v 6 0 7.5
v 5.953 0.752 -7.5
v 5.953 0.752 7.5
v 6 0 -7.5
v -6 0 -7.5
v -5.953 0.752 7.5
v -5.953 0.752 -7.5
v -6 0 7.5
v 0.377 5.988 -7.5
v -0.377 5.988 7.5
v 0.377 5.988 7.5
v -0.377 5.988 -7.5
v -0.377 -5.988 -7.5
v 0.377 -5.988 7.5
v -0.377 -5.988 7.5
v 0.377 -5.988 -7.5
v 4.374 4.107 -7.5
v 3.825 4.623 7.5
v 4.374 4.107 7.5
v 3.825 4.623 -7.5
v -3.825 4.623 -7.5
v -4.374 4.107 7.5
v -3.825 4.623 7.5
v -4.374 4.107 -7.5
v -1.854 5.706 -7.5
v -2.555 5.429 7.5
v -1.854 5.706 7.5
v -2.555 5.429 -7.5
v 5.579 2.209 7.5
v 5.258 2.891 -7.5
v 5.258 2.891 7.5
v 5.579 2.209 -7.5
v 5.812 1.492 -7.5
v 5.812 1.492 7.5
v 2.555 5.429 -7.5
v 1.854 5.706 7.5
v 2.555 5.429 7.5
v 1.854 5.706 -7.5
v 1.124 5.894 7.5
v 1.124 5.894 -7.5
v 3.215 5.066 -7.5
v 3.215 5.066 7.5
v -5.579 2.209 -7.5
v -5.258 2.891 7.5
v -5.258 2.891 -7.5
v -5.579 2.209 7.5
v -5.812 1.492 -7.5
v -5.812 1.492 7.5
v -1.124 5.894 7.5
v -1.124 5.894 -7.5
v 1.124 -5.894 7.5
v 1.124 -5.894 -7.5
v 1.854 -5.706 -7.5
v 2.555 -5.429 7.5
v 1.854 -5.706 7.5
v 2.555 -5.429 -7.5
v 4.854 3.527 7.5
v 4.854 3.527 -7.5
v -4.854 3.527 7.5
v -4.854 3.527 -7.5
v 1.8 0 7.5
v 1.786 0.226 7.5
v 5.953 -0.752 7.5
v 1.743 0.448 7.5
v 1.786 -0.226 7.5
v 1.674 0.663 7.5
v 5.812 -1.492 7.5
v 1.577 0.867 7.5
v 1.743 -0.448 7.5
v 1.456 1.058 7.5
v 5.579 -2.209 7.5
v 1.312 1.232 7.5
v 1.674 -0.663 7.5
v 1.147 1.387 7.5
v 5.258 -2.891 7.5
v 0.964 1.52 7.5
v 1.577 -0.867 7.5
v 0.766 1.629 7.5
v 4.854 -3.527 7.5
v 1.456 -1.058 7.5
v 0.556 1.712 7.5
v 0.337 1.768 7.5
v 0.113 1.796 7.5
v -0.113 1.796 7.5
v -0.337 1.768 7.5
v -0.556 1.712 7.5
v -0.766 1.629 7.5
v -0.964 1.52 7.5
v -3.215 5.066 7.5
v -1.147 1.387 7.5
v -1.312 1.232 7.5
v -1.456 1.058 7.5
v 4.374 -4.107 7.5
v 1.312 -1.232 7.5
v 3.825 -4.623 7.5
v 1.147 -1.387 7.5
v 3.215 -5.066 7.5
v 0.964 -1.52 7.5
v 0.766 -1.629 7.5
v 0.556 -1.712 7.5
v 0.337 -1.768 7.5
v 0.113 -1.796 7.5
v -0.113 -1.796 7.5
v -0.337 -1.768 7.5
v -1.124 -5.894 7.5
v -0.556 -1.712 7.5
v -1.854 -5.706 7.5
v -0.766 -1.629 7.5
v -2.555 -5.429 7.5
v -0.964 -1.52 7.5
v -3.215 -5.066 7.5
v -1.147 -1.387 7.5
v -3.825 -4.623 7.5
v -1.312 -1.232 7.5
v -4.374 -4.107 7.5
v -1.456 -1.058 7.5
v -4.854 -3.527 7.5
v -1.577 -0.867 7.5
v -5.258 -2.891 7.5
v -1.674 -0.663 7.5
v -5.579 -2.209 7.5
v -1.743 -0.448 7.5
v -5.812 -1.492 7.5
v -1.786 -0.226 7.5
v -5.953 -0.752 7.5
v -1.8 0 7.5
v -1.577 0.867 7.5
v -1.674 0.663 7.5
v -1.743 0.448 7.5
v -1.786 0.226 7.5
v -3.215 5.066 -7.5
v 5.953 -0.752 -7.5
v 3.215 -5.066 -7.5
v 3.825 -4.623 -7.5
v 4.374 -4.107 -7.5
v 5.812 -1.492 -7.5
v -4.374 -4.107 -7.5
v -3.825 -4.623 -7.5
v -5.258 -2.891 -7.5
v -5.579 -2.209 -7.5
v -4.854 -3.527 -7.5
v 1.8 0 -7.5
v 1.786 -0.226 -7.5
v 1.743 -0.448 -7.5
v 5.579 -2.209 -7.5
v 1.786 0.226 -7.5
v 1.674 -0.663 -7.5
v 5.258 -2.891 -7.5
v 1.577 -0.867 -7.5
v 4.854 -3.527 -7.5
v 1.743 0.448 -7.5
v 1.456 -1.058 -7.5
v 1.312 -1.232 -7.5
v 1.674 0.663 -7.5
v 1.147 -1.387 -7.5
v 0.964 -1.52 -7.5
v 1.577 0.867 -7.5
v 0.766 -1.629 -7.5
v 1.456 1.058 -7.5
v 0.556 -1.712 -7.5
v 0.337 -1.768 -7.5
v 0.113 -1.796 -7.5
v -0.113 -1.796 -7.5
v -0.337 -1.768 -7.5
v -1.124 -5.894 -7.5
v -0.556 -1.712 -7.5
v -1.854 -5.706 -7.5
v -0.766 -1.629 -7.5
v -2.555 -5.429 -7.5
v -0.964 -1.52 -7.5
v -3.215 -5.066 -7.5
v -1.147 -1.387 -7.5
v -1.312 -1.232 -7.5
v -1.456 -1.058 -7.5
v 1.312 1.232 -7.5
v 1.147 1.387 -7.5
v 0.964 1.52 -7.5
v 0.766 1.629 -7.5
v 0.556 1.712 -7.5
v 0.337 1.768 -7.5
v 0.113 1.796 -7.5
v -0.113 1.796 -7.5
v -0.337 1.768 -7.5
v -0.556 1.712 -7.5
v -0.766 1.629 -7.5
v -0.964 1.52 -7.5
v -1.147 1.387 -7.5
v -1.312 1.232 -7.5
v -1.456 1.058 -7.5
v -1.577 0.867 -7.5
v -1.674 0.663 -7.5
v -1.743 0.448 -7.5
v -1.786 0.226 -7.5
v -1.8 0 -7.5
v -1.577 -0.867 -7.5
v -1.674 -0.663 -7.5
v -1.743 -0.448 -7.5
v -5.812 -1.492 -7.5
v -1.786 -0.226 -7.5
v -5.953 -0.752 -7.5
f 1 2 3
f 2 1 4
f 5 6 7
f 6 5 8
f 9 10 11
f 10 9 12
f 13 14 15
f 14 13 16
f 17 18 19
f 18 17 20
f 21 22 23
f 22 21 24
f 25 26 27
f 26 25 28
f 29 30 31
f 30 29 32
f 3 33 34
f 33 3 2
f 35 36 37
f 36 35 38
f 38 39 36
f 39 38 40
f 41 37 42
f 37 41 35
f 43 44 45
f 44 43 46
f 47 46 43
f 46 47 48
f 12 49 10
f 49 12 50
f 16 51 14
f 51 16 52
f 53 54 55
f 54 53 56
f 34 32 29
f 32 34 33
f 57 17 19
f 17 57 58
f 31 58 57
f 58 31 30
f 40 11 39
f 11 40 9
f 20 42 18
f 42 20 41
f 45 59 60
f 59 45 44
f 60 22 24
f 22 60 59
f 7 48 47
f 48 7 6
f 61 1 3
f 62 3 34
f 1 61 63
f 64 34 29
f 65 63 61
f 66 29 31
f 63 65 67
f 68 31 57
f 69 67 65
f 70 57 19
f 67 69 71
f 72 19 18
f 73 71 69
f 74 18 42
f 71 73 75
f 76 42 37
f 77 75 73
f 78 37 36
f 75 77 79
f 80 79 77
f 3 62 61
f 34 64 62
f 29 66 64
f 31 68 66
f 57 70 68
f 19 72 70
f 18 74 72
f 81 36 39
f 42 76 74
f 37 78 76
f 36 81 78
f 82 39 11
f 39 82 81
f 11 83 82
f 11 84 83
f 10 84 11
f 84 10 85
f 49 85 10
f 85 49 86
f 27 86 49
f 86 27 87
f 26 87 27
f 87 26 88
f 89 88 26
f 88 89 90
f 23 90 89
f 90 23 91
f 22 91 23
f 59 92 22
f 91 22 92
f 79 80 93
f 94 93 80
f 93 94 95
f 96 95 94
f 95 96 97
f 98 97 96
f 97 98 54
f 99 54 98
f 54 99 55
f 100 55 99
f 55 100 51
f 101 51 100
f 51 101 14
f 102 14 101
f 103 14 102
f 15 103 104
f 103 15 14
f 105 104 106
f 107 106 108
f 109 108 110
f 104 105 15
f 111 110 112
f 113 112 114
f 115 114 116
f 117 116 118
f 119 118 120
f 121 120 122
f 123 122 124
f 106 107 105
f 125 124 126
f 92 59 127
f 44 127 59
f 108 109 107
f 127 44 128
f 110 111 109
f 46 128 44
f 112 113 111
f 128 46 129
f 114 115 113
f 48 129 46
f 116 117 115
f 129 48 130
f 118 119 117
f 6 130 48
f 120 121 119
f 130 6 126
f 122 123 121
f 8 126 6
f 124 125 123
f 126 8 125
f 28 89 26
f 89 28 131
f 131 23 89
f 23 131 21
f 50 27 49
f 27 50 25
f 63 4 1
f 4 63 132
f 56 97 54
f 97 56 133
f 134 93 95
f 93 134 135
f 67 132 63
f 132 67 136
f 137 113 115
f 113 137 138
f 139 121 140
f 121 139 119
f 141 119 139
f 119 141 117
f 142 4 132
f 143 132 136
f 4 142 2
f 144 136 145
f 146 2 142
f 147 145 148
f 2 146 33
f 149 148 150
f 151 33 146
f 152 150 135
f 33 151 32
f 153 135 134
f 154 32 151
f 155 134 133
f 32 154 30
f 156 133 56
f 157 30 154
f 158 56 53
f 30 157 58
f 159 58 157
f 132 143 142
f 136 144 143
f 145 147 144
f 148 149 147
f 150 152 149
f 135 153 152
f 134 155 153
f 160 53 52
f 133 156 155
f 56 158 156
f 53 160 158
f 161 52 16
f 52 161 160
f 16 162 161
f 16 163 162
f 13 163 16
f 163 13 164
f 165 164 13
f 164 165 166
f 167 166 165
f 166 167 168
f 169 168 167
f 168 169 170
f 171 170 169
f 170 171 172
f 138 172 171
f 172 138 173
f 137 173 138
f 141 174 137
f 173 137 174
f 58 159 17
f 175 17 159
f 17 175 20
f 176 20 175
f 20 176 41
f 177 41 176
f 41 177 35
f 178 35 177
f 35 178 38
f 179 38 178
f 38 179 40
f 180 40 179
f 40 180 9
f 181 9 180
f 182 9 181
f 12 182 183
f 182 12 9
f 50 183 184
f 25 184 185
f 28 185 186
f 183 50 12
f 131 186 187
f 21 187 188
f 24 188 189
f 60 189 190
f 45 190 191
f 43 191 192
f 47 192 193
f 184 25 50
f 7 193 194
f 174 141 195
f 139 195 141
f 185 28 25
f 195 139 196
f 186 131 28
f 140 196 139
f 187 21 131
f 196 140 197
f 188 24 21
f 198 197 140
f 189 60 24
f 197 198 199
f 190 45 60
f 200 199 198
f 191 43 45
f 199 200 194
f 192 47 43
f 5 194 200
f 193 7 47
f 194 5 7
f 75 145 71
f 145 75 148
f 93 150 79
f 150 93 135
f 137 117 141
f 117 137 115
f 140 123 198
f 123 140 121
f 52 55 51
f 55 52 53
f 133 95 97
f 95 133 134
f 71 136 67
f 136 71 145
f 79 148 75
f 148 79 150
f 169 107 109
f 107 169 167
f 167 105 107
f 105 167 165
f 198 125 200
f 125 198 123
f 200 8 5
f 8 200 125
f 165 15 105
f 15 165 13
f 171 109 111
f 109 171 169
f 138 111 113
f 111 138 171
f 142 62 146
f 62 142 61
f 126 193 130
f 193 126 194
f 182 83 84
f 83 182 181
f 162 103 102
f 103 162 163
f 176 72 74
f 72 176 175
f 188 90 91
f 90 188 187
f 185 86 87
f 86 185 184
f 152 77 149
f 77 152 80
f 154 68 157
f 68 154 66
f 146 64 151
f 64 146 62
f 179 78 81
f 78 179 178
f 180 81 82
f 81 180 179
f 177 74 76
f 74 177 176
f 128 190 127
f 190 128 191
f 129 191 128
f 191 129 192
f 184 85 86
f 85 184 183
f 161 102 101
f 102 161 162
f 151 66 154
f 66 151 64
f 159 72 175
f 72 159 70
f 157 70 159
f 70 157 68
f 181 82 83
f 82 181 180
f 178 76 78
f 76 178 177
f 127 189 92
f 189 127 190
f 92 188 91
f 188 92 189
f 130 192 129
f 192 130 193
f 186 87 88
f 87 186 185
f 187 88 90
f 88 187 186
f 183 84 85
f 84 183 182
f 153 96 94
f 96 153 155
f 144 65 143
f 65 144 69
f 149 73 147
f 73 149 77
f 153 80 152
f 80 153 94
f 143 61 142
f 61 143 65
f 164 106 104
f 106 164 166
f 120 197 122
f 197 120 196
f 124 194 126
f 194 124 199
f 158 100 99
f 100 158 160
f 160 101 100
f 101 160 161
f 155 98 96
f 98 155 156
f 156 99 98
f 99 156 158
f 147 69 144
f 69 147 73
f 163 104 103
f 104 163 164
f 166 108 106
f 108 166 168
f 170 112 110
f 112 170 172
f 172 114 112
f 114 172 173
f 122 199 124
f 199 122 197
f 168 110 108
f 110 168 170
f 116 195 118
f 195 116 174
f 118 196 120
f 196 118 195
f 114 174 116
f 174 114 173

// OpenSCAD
$fn = 50;


difference() {
	union() {
		translate(v = [0, 0, -7.5000000000]) {
			cylinder(h = 15, r = 6.0000000000);
		}
	}
	union() {
		translate(v = [0, 0, -100.0000000000]) {
			cylinder(h = 200, r = 1.8000000000);
		}
	}
}
